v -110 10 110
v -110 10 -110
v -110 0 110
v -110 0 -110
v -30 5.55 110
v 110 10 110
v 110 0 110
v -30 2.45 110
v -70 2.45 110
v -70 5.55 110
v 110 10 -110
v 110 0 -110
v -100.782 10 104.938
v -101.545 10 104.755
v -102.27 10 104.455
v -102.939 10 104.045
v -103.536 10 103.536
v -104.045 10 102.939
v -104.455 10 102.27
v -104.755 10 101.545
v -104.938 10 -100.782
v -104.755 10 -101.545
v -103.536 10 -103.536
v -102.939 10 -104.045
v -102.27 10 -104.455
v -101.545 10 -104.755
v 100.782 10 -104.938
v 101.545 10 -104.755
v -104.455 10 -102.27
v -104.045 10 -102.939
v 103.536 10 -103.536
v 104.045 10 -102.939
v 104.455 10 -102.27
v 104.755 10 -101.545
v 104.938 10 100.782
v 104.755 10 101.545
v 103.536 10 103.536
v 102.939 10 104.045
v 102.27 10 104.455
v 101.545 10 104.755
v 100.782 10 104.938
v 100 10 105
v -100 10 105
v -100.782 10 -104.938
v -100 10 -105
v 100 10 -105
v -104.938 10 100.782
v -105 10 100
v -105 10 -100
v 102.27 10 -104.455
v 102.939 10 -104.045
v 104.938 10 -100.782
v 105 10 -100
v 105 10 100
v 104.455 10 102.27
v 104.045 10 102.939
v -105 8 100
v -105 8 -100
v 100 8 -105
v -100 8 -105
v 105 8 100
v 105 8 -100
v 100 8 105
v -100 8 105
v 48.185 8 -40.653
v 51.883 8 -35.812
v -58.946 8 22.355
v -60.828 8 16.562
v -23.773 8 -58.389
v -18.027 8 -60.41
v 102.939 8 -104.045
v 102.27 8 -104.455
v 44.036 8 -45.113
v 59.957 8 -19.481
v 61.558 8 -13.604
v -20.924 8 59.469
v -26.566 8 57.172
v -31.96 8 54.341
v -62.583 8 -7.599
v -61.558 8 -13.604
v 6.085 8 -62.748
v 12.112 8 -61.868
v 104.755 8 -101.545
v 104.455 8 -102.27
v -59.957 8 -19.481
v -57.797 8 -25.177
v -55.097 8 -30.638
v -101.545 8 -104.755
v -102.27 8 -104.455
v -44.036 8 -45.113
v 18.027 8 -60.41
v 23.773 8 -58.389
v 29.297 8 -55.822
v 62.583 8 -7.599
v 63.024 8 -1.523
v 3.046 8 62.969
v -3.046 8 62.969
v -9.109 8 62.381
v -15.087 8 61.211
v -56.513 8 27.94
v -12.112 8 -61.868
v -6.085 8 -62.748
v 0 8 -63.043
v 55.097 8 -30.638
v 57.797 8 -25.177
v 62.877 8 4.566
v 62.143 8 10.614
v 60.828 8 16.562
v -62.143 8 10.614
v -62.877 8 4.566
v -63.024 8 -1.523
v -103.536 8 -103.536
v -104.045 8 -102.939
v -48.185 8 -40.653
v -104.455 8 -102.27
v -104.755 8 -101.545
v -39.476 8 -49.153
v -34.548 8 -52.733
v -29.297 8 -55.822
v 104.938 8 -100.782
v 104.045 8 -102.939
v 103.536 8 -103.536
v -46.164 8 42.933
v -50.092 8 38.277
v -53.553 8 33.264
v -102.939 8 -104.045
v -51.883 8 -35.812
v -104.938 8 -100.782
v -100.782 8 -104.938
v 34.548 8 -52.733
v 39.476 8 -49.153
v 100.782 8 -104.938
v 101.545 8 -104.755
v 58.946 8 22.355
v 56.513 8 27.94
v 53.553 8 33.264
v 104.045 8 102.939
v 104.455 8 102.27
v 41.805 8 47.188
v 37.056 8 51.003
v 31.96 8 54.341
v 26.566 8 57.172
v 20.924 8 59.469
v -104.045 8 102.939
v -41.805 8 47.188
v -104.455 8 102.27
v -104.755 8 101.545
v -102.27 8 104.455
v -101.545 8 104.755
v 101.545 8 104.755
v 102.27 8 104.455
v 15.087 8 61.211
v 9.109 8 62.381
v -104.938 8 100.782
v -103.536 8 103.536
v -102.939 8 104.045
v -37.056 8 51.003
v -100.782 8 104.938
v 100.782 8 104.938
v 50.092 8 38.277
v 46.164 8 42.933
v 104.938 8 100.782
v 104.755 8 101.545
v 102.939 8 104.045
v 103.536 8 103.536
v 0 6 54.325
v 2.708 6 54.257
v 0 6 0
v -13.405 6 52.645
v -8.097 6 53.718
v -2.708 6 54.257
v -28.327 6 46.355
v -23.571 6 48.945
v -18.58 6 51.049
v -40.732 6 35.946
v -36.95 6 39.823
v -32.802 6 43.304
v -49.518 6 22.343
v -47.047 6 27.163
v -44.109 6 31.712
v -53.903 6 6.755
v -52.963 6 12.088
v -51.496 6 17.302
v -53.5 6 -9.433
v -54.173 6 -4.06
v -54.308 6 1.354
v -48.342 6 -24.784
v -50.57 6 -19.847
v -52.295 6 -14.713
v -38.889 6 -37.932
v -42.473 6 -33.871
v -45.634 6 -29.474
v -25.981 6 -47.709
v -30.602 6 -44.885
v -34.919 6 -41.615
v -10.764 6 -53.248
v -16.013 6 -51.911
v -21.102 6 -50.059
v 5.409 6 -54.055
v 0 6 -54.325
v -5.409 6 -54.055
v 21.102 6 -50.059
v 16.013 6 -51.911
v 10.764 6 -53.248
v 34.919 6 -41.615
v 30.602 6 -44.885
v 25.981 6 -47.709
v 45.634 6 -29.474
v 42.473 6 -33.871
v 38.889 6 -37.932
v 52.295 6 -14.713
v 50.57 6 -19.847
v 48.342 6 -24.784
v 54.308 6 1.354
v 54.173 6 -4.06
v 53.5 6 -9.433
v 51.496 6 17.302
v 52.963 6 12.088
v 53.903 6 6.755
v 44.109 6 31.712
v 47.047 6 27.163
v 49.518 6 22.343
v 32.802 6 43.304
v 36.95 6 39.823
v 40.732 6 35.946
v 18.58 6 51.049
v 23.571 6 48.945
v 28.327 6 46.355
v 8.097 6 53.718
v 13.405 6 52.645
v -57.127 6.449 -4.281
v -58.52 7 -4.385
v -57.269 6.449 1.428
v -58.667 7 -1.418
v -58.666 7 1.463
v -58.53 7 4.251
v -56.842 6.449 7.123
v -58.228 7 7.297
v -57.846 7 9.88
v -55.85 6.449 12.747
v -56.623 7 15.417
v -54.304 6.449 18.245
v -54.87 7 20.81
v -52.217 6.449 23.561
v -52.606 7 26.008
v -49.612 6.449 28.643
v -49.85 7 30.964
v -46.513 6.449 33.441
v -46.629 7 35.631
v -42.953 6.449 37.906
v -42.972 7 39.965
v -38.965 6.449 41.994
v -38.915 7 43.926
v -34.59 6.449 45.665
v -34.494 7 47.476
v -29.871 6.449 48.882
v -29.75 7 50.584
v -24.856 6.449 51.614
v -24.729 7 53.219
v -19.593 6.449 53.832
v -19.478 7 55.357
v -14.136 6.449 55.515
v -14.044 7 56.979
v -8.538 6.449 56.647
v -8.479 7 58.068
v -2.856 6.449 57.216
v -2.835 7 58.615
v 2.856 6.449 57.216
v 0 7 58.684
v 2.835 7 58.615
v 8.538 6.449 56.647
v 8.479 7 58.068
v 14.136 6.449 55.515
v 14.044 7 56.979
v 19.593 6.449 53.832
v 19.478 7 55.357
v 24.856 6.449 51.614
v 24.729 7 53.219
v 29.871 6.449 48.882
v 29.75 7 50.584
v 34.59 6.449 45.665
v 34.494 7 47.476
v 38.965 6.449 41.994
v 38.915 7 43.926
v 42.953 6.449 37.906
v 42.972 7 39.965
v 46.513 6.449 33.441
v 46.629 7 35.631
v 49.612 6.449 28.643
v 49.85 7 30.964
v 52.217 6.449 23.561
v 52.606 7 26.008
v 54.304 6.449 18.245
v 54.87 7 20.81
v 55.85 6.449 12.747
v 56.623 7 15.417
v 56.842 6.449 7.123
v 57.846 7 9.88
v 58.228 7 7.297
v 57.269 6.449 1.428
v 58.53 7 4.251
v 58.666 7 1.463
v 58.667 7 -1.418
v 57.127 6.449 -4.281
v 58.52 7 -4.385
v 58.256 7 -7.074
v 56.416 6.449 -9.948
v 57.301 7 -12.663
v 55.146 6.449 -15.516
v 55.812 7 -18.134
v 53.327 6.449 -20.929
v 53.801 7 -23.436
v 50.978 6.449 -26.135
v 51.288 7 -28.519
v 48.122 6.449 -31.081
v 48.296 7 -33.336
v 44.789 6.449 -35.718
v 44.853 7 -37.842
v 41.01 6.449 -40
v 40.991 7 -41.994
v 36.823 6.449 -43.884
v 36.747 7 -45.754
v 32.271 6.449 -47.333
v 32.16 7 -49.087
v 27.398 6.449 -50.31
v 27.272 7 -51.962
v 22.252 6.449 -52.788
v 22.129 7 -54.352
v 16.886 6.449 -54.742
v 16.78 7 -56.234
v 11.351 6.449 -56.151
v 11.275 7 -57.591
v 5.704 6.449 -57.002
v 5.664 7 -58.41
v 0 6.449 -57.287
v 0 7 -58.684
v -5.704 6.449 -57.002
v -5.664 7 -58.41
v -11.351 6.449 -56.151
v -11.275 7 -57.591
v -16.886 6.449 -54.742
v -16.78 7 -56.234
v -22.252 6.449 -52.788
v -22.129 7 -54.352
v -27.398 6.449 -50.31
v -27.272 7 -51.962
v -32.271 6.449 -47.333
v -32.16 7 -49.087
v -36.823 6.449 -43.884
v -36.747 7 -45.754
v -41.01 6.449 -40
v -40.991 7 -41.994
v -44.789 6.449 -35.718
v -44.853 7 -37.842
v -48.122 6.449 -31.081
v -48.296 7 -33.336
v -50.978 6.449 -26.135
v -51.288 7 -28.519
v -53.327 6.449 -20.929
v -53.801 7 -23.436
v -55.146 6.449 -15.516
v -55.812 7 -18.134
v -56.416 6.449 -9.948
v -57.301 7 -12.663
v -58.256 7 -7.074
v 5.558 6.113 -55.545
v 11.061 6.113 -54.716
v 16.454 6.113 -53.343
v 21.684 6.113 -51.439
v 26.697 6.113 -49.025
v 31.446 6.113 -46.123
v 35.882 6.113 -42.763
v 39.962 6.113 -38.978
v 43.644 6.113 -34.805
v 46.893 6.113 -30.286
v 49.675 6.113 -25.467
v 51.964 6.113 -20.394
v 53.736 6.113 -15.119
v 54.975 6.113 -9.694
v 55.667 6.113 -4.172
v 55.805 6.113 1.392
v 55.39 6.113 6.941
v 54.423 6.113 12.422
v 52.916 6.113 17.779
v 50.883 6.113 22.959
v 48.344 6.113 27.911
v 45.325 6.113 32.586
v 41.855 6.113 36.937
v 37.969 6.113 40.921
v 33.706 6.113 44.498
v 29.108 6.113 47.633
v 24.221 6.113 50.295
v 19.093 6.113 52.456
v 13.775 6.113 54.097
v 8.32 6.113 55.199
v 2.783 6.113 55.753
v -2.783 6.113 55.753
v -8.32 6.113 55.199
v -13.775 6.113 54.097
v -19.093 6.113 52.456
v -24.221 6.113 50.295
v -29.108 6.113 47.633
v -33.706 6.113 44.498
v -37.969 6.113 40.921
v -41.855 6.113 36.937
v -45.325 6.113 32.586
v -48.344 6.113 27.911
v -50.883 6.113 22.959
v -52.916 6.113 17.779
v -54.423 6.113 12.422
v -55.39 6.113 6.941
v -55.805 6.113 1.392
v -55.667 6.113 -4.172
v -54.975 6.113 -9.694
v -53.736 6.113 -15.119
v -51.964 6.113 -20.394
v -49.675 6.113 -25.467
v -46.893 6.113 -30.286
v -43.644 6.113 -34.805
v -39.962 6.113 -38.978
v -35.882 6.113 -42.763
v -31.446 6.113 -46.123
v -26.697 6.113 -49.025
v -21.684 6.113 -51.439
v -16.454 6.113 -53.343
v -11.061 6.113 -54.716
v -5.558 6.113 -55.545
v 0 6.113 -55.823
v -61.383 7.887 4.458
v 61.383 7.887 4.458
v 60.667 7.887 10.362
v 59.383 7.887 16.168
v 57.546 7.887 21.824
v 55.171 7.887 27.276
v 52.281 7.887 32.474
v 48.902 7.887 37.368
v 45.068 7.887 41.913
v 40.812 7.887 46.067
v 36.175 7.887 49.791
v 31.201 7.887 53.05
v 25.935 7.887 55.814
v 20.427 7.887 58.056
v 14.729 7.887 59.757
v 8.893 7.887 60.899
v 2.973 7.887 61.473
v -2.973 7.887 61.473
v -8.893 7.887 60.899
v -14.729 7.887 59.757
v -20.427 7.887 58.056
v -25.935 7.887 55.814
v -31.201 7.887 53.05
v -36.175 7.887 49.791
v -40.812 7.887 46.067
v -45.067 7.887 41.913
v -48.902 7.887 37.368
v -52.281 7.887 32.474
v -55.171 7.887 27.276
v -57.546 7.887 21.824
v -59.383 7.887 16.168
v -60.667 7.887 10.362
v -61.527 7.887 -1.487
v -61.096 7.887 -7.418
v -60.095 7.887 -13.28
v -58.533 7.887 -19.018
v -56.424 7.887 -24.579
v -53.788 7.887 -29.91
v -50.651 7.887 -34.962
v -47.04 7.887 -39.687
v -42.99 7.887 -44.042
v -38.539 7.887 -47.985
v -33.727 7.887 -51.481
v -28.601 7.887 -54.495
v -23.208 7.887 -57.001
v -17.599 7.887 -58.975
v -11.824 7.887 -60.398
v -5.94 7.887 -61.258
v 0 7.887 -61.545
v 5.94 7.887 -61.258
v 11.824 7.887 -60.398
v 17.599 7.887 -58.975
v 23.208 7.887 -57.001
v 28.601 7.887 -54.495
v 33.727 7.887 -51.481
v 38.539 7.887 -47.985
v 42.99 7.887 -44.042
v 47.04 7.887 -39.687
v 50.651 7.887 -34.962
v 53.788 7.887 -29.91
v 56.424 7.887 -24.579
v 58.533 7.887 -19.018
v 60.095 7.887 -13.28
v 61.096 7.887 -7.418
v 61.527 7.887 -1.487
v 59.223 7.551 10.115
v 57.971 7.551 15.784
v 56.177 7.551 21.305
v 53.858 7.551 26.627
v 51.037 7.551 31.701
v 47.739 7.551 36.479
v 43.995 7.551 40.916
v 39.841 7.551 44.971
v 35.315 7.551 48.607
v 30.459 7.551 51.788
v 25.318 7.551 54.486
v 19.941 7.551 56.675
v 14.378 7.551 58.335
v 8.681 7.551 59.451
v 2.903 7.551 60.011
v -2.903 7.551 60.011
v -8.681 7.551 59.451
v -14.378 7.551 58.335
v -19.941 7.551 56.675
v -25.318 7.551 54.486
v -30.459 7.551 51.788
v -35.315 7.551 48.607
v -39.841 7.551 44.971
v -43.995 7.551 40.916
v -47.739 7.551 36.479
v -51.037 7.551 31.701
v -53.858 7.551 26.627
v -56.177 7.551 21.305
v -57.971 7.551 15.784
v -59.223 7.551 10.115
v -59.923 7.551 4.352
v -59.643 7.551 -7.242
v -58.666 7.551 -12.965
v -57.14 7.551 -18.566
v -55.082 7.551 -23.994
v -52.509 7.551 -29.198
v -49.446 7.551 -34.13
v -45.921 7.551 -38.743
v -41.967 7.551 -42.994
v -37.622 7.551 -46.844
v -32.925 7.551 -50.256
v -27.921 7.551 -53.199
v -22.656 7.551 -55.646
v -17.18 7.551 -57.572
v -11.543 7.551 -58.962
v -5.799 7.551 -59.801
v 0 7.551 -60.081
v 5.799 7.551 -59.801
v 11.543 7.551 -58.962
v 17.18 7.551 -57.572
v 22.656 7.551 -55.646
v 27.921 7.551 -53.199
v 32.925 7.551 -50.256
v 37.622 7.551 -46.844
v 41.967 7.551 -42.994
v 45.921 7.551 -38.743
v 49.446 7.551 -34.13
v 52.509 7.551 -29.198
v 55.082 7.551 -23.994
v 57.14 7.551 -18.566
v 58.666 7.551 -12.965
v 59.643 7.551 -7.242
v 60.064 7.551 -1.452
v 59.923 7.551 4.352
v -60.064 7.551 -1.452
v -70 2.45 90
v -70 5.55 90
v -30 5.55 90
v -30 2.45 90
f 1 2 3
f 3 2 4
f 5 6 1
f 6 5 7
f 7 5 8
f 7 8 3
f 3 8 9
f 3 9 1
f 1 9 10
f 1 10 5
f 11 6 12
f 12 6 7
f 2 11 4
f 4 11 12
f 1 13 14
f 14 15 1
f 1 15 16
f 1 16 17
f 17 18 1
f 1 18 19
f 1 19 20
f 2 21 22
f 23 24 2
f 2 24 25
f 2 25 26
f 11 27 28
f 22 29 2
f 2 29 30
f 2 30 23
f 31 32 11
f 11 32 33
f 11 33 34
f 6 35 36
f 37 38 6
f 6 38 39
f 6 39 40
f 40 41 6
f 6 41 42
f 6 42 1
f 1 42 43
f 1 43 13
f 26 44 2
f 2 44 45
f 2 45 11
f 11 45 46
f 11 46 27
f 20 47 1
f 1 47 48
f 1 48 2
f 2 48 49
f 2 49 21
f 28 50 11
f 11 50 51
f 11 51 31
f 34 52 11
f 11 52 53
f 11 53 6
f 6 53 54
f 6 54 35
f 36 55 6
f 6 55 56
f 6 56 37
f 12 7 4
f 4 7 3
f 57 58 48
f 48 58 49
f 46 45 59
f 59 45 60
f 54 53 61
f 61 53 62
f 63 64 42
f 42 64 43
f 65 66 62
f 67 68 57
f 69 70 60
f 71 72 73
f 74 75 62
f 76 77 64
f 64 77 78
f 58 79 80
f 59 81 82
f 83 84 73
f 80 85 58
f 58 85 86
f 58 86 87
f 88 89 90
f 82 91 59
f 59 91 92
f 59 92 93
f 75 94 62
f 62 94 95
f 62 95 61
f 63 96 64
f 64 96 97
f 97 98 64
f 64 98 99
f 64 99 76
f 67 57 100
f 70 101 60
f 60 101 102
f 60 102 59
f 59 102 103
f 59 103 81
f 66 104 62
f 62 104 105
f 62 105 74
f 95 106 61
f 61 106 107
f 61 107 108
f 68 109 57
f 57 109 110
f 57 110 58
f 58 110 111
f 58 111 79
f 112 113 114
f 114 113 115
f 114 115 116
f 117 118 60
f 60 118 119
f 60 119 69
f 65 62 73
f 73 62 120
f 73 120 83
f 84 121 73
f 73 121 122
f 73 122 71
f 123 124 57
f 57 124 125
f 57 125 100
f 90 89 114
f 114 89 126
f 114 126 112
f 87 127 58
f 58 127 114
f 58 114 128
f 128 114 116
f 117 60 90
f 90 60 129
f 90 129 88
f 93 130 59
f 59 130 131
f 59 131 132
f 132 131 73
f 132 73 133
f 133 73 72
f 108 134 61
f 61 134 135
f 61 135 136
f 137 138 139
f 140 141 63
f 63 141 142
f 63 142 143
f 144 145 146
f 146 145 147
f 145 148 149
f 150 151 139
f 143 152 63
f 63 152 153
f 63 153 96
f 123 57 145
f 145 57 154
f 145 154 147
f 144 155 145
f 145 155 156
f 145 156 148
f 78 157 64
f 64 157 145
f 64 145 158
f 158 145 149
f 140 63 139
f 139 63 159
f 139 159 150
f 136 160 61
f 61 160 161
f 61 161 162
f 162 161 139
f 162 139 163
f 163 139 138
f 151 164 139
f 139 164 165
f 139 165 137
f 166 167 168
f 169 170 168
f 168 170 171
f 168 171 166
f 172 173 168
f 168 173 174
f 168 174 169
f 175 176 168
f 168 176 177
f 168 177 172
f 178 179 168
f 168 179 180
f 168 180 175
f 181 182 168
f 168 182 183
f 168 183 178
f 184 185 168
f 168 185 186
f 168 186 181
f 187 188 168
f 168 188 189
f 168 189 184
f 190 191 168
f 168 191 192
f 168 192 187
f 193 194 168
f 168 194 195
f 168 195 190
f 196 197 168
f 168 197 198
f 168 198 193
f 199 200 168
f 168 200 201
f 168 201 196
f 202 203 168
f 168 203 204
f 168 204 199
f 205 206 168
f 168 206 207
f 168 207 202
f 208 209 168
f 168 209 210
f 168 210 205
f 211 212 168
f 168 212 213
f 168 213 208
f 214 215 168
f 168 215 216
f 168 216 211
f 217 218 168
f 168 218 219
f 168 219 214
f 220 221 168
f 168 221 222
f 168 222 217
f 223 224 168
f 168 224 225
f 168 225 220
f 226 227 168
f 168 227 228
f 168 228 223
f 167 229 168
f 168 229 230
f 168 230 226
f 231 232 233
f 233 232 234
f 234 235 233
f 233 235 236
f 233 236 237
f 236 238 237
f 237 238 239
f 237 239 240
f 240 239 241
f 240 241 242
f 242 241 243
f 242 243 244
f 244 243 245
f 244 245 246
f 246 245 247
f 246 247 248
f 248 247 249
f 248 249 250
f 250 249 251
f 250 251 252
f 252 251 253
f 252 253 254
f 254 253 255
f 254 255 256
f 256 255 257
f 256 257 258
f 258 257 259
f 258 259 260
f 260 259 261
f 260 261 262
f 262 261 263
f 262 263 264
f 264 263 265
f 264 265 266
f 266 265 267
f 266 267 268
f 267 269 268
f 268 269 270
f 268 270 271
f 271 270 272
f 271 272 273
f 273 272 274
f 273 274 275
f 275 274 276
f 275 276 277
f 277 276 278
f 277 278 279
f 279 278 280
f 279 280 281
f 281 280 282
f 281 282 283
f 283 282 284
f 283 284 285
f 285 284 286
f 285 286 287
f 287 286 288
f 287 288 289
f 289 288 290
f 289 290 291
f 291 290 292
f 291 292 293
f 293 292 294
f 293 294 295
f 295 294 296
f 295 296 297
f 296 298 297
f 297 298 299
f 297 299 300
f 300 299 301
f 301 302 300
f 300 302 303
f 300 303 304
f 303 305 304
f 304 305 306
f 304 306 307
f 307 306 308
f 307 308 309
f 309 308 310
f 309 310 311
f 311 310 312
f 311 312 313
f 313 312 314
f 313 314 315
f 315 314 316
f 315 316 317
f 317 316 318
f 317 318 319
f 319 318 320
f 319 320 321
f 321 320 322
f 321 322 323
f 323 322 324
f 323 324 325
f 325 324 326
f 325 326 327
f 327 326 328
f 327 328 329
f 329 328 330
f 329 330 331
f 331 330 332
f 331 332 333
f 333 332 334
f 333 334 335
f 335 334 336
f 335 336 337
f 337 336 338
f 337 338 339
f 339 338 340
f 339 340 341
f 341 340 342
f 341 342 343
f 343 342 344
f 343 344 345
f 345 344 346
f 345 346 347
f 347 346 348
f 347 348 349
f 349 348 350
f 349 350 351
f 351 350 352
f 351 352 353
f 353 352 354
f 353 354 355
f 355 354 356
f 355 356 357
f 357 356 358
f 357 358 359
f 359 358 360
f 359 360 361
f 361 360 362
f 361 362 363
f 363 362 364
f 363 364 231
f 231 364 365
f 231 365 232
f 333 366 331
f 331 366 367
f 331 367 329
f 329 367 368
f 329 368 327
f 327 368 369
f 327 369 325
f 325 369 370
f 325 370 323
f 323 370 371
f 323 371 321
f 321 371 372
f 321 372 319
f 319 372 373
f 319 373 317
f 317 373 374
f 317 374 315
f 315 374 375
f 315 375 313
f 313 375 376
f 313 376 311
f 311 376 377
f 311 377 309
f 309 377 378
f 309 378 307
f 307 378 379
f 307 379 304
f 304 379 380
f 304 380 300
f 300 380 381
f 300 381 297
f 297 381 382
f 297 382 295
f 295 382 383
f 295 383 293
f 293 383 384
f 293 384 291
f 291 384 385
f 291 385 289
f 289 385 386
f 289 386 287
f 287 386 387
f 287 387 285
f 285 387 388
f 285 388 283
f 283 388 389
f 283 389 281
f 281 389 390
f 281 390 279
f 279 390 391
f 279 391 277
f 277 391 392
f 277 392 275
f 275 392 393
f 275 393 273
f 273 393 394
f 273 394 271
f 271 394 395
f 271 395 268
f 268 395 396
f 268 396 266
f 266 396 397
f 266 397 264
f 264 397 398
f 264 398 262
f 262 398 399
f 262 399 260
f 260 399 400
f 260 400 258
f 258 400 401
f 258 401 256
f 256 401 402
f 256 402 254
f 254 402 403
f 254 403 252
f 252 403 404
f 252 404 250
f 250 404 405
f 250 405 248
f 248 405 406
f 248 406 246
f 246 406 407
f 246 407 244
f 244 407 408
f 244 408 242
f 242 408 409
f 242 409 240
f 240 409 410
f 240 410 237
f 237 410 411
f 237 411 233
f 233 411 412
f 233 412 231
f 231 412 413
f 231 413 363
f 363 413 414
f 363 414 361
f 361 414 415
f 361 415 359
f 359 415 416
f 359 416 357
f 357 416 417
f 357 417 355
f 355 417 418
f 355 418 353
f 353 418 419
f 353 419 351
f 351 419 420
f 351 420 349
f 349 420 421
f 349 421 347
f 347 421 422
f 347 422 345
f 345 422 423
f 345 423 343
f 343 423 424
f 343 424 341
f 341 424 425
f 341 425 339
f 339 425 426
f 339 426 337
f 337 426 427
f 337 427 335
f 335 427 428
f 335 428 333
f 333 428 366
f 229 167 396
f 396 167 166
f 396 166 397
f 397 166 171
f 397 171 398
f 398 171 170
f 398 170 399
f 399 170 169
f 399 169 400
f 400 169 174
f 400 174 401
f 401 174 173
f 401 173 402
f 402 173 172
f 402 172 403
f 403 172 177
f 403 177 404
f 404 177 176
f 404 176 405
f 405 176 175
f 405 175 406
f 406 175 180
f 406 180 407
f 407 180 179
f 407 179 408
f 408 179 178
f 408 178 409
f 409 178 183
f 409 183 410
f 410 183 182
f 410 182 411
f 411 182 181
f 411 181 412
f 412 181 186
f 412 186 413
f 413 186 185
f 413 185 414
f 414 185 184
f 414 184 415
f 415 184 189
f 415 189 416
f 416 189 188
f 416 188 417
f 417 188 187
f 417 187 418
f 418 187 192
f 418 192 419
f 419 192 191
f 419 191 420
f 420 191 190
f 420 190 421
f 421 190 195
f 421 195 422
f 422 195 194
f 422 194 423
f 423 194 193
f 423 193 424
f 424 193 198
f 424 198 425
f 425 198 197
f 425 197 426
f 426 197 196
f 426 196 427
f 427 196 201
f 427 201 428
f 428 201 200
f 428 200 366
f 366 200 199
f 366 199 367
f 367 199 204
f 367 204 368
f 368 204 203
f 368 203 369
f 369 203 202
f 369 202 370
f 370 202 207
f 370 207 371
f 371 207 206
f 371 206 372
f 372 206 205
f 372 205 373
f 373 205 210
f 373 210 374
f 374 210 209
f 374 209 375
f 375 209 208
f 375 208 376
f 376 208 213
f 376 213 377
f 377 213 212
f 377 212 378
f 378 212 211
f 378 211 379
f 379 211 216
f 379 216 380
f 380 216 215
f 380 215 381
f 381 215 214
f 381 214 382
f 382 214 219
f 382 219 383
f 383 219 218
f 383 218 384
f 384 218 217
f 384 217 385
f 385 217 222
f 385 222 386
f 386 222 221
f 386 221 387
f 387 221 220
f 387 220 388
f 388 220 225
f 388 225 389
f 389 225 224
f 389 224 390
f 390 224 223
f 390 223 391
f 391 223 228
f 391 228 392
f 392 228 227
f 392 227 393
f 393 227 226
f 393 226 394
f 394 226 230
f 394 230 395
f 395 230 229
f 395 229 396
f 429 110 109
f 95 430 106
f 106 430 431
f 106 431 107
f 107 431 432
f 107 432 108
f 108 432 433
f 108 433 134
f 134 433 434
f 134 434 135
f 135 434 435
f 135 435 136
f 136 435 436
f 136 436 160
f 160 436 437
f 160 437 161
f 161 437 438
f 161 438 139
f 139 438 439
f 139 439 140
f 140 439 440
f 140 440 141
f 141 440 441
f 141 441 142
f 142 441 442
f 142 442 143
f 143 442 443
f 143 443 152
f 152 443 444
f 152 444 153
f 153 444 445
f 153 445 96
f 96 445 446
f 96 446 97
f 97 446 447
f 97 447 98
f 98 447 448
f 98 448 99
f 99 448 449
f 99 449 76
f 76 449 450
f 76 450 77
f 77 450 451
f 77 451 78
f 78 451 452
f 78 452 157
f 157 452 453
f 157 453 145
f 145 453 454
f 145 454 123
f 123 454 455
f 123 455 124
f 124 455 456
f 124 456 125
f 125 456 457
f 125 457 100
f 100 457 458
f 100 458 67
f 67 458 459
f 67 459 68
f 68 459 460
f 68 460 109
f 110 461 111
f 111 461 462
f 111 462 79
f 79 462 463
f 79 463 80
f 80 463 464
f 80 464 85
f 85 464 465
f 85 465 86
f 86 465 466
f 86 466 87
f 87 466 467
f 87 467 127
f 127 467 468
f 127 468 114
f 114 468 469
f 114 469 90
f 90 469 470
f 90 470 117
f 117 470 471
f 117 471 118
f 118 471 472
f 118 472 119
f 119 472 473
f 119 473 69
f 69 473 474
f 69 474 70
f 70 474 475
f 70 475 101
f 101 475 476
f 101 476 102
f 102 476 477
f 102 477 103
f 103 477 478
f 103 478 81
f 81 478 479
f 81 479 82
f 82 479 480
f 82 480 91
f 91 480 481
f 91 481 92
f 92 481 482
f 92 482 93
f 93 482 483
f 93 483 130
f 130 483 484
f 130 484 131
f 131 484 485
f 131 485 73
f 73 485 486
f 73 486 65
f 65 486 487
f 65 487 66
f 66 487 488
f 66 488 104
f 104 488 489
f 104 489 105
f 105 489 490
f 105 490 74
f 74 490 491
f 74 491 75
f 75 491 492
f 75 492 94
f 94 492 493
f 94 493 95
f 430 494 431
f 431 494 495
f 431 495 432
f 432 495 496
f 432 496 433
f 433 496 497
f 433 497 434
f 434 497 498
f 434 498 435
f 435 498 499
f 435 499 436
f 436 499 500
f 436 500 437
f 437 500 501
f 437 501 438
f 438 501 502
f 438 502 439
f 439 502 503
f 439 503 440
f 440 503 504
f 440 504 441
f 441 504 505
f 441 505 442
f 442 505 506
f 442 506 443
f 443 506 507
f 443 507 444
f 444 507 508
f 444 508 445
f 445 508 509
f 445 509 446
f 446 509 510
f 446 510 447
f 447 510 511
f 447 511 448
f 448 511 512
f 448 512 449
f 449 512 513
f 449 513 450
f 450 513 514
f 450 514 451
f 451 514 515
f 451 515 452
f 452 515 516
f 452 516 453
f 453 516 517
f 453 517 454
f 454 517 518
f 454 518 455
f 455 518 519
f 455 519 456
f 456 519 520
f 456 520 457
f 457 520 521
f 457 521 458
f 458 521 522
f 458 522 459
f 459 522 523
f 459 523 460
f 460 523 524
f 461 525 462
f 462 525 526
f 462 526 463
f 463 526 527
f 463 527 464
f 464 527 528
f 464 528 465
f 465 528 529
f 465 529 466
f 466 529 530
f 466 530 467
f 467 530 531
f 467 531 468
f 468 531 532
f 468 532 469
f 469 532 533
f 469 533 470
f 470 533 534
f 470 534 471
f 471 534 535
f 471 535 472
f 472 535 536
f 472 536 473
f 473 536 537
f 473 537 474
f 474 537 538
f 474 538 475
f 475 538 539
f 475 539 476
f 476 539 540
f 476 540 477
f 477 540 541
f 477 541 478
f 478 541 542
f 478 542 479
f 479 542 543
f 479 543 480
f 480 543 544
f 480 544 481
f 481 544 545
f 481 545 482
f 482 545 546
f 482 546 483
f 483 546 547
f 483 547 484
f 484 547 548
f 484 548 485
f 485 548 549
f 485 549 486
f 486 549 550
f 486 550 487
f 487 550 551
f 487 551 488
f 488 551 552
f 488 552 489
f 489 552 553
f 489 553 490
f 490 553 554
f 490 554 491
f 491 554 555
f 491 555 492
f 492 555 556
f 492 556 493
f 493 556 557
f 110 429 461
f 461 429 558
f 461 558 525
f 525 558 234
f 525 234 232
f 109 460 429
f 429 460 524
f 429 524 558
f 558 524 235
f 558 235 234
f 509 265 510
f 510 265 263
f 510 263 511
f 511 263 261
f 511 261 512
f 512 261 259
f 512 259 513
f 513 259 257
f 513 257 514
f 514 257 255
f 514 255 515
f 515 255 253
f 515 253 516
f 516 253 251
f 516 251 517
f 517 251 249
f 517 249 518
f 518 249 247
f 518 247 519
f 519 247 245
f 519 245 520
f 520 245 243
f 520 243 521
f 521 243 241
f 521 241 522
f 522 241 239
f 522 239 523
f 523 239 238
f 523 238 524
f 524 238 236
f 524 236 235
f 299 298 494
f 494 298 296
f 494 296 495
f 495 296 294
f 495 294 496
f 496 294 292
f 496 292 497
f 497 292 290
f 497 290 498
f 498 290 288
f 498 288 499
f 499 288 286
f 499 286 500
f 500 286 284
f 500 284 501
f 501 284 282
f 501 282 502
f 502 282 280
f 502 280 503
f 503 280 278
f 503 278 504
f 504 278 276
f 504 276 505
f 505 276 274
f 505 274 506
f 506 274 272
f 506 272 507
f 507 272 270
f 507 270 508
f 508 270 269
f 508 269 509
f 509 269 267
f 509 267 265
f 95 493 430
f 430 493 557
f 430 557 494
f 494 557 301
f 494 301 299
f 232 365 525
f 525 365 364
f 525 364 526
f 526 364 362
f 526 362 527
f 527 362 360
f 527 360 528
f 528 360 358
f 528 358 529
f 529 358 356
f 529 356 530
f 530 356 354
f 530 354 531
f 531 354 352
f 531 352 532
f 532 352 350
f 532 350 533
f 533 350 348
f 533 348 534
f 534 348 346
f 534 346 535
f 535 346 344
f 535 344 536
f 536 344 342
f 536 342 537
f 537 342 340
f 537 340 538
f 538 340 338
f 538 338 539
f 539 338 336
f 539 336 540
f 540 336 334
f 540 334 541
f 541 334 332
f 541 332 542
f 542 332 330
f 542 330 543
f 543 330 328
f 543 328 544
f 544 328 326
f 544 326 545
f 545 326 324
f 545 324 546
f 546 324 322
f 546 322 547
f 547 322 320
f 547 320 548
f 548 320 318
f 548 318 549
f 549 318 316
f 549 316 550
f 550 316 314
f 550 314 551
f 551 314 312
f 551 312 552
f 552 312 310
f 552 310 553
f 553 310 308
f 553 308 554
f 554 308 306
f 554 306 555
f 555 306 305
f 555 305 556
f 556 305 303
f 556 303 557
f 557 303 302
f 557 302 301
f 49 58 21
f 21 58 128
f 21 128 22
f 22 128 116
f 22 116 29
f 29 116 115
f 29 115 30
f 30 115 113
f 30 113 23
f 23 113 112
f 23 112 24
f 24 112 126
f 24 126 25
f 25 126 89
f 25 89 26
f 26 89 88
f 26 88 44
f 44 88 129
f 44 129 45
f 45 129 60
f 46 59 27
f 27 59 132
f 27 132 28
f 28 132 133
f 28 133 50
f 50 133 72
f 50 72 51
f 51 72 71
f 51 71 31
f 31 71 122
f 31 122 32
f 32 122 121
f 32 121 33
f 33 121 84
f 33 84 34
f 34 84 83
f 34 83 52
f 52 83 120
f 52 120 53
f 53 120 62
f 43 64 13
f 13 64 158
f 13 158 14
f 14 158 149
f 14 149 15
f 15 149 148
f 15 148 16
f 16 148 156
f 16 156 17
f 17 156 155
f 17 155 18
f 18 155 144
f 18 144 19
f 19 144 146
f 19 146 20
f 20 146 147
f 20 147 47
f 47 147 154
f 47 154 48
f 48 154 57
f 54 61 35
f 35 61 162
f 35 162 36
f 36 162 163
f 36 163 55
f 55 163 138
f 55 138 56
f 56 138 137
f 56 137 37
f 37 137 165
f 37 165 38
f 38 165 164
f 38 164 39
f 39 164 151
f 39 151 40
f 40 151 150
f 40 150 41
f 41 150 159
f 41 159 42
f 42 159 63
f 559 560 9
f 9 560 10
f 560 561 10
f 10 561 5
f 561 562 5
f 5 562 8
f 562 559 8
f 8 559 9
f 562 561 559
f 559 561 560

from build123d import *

# Parameters (mm, degrees)
SKETCH1_W           = 220
SKETCH1_H           = 220
BOSS_EXTRUDE1_DEPTH = 10
SKETCH2_W           = 210
SKETCH2_H           = 210
CUT_EXTRUDE1_DEPTH  = 2
SKETCH3_R           = 60.325
CUT_EXTRUDE2_DEPTH  = 2
FILLET1_R           = 10
FILLET2_R           = 10
FILLET3_R           = 5
FILLET4_R           = 5
FILLET5_R           = 5
FILLET6_R           = 5
SKETCH4_W           = 40
SKETCH4_H           = 3.1
CUT_EXTRUDE3_DEPTH  = 20


with BuildPart() as part:
    # Sketch1 → Boss-Extrude1 (new body)
    with BuildSketch(Plane(origin=(0, 0, 0), x_dir=(1, 0, 0), z_dir=(0, 1, 0))):
        Rectangle(SKETCH1_W, SKETCH1_H)
    extrude(amount=BOSS_EXTRUDE1_DEPTH)

    # Sketch2 → Cut-Extrude1 (cut)
    with BuildSketch(Plane(origin=(0, 10, 0), x_dir=(1, 0, 0), z_dir=(0, 1, 0))):
        Rectangle(SKETCH2_W, SKETCH2_H)
    extrude(amount=-CUT_EXTRUDE1_DEPTH, mode=Mode.SUBTRACT)

    # Sketch3 → Cut-Extrude2 (cut)
    with BuildSketch(Plane(origin=(0, 8, 0), x_dir=(1, 0, 0), z_dir=(0, 1, 0))):
        with Locations(Location((0, 0, 0), (0, 0, 270))):
            Circle(SKETCH3_R)
    extrude(amount=-CUT_EXTRUDE2_DEPTH, mode=Mode.SUBTRACT)

    # Fillet1
    # the kernel refuses this fillet: 10 mm, written as the material it adds along each edge
    with BuildSketch(Plane(origin=(0, 6, 0), x_dir=(0, 0, 1), z_dir=(-1, 0, 0))) as fillet1_piece_1:
        with BuildLine():
            CenterArc((54.325, 10), FILLET1_R, 270, 36.869897646)
            Line((54.325, 0), (54.325, -0.2))
            Line((54.325, -0.2), (60.325, -0.2))
            Line((60.325, -0.2), (60.525, 0))
            ThreePointArc((60.525, 0), (60.525, 1), (60.445, 1.84))
            Line((60.445, 1.84), (60.325, 2))
        make_face()
    revolve(axis=Axis((0, 6, 0), (0, 1, 0)))

    # Fillet2
    fillet2_edges = [part.edges().sort_by_distance(p)[0] for p in [
        (0, 8, -60.325),
    ]]
    fillet(fillet2_edges, radius=FILLET2_R)

    # Fillet3
    fillet3_edges = [part.edges().sort_by_distance(p)[0] for p in [
        (-105, 9, -105),
    ]]
    fillet(fillet3_edges, radius=FILLET3_R)

    # Fillet4
    fillet4_edges = [part.edges().sort_by_distance(p)[0] for p in [
        (105, 9, -105),
    ]]
    fillet(fillet4_edges, radius=FILLET4_R)

    # Fillet5
    fillet5_edges = [part.edges().sort_by_distance(p)[0] for p in [
        (-105, 9, 105),
    ]]
    fillet(fillet5_edges, radius=FILLET5_R)

    # Fillet6
    fillet6_edges = [part.edges().sort_by_distance(p)[0] for p in [
        (105, 9, 105),
    ]]
    fillet(fillet6_edges, radius=FILLET6_R)

    # Sketch4 → Cut-Extrude3 (cut)
    with BuildSketch(Plane.XY.offset(110)):
        with Locations((-50, 4)):
            Rectangle(SKETCH4_W, SKETCH4_H)
    extrude(amount=-CUT_EXTRUDE3_DEPTH, mode=Mode.SUBTRACT)


solid = part.part
